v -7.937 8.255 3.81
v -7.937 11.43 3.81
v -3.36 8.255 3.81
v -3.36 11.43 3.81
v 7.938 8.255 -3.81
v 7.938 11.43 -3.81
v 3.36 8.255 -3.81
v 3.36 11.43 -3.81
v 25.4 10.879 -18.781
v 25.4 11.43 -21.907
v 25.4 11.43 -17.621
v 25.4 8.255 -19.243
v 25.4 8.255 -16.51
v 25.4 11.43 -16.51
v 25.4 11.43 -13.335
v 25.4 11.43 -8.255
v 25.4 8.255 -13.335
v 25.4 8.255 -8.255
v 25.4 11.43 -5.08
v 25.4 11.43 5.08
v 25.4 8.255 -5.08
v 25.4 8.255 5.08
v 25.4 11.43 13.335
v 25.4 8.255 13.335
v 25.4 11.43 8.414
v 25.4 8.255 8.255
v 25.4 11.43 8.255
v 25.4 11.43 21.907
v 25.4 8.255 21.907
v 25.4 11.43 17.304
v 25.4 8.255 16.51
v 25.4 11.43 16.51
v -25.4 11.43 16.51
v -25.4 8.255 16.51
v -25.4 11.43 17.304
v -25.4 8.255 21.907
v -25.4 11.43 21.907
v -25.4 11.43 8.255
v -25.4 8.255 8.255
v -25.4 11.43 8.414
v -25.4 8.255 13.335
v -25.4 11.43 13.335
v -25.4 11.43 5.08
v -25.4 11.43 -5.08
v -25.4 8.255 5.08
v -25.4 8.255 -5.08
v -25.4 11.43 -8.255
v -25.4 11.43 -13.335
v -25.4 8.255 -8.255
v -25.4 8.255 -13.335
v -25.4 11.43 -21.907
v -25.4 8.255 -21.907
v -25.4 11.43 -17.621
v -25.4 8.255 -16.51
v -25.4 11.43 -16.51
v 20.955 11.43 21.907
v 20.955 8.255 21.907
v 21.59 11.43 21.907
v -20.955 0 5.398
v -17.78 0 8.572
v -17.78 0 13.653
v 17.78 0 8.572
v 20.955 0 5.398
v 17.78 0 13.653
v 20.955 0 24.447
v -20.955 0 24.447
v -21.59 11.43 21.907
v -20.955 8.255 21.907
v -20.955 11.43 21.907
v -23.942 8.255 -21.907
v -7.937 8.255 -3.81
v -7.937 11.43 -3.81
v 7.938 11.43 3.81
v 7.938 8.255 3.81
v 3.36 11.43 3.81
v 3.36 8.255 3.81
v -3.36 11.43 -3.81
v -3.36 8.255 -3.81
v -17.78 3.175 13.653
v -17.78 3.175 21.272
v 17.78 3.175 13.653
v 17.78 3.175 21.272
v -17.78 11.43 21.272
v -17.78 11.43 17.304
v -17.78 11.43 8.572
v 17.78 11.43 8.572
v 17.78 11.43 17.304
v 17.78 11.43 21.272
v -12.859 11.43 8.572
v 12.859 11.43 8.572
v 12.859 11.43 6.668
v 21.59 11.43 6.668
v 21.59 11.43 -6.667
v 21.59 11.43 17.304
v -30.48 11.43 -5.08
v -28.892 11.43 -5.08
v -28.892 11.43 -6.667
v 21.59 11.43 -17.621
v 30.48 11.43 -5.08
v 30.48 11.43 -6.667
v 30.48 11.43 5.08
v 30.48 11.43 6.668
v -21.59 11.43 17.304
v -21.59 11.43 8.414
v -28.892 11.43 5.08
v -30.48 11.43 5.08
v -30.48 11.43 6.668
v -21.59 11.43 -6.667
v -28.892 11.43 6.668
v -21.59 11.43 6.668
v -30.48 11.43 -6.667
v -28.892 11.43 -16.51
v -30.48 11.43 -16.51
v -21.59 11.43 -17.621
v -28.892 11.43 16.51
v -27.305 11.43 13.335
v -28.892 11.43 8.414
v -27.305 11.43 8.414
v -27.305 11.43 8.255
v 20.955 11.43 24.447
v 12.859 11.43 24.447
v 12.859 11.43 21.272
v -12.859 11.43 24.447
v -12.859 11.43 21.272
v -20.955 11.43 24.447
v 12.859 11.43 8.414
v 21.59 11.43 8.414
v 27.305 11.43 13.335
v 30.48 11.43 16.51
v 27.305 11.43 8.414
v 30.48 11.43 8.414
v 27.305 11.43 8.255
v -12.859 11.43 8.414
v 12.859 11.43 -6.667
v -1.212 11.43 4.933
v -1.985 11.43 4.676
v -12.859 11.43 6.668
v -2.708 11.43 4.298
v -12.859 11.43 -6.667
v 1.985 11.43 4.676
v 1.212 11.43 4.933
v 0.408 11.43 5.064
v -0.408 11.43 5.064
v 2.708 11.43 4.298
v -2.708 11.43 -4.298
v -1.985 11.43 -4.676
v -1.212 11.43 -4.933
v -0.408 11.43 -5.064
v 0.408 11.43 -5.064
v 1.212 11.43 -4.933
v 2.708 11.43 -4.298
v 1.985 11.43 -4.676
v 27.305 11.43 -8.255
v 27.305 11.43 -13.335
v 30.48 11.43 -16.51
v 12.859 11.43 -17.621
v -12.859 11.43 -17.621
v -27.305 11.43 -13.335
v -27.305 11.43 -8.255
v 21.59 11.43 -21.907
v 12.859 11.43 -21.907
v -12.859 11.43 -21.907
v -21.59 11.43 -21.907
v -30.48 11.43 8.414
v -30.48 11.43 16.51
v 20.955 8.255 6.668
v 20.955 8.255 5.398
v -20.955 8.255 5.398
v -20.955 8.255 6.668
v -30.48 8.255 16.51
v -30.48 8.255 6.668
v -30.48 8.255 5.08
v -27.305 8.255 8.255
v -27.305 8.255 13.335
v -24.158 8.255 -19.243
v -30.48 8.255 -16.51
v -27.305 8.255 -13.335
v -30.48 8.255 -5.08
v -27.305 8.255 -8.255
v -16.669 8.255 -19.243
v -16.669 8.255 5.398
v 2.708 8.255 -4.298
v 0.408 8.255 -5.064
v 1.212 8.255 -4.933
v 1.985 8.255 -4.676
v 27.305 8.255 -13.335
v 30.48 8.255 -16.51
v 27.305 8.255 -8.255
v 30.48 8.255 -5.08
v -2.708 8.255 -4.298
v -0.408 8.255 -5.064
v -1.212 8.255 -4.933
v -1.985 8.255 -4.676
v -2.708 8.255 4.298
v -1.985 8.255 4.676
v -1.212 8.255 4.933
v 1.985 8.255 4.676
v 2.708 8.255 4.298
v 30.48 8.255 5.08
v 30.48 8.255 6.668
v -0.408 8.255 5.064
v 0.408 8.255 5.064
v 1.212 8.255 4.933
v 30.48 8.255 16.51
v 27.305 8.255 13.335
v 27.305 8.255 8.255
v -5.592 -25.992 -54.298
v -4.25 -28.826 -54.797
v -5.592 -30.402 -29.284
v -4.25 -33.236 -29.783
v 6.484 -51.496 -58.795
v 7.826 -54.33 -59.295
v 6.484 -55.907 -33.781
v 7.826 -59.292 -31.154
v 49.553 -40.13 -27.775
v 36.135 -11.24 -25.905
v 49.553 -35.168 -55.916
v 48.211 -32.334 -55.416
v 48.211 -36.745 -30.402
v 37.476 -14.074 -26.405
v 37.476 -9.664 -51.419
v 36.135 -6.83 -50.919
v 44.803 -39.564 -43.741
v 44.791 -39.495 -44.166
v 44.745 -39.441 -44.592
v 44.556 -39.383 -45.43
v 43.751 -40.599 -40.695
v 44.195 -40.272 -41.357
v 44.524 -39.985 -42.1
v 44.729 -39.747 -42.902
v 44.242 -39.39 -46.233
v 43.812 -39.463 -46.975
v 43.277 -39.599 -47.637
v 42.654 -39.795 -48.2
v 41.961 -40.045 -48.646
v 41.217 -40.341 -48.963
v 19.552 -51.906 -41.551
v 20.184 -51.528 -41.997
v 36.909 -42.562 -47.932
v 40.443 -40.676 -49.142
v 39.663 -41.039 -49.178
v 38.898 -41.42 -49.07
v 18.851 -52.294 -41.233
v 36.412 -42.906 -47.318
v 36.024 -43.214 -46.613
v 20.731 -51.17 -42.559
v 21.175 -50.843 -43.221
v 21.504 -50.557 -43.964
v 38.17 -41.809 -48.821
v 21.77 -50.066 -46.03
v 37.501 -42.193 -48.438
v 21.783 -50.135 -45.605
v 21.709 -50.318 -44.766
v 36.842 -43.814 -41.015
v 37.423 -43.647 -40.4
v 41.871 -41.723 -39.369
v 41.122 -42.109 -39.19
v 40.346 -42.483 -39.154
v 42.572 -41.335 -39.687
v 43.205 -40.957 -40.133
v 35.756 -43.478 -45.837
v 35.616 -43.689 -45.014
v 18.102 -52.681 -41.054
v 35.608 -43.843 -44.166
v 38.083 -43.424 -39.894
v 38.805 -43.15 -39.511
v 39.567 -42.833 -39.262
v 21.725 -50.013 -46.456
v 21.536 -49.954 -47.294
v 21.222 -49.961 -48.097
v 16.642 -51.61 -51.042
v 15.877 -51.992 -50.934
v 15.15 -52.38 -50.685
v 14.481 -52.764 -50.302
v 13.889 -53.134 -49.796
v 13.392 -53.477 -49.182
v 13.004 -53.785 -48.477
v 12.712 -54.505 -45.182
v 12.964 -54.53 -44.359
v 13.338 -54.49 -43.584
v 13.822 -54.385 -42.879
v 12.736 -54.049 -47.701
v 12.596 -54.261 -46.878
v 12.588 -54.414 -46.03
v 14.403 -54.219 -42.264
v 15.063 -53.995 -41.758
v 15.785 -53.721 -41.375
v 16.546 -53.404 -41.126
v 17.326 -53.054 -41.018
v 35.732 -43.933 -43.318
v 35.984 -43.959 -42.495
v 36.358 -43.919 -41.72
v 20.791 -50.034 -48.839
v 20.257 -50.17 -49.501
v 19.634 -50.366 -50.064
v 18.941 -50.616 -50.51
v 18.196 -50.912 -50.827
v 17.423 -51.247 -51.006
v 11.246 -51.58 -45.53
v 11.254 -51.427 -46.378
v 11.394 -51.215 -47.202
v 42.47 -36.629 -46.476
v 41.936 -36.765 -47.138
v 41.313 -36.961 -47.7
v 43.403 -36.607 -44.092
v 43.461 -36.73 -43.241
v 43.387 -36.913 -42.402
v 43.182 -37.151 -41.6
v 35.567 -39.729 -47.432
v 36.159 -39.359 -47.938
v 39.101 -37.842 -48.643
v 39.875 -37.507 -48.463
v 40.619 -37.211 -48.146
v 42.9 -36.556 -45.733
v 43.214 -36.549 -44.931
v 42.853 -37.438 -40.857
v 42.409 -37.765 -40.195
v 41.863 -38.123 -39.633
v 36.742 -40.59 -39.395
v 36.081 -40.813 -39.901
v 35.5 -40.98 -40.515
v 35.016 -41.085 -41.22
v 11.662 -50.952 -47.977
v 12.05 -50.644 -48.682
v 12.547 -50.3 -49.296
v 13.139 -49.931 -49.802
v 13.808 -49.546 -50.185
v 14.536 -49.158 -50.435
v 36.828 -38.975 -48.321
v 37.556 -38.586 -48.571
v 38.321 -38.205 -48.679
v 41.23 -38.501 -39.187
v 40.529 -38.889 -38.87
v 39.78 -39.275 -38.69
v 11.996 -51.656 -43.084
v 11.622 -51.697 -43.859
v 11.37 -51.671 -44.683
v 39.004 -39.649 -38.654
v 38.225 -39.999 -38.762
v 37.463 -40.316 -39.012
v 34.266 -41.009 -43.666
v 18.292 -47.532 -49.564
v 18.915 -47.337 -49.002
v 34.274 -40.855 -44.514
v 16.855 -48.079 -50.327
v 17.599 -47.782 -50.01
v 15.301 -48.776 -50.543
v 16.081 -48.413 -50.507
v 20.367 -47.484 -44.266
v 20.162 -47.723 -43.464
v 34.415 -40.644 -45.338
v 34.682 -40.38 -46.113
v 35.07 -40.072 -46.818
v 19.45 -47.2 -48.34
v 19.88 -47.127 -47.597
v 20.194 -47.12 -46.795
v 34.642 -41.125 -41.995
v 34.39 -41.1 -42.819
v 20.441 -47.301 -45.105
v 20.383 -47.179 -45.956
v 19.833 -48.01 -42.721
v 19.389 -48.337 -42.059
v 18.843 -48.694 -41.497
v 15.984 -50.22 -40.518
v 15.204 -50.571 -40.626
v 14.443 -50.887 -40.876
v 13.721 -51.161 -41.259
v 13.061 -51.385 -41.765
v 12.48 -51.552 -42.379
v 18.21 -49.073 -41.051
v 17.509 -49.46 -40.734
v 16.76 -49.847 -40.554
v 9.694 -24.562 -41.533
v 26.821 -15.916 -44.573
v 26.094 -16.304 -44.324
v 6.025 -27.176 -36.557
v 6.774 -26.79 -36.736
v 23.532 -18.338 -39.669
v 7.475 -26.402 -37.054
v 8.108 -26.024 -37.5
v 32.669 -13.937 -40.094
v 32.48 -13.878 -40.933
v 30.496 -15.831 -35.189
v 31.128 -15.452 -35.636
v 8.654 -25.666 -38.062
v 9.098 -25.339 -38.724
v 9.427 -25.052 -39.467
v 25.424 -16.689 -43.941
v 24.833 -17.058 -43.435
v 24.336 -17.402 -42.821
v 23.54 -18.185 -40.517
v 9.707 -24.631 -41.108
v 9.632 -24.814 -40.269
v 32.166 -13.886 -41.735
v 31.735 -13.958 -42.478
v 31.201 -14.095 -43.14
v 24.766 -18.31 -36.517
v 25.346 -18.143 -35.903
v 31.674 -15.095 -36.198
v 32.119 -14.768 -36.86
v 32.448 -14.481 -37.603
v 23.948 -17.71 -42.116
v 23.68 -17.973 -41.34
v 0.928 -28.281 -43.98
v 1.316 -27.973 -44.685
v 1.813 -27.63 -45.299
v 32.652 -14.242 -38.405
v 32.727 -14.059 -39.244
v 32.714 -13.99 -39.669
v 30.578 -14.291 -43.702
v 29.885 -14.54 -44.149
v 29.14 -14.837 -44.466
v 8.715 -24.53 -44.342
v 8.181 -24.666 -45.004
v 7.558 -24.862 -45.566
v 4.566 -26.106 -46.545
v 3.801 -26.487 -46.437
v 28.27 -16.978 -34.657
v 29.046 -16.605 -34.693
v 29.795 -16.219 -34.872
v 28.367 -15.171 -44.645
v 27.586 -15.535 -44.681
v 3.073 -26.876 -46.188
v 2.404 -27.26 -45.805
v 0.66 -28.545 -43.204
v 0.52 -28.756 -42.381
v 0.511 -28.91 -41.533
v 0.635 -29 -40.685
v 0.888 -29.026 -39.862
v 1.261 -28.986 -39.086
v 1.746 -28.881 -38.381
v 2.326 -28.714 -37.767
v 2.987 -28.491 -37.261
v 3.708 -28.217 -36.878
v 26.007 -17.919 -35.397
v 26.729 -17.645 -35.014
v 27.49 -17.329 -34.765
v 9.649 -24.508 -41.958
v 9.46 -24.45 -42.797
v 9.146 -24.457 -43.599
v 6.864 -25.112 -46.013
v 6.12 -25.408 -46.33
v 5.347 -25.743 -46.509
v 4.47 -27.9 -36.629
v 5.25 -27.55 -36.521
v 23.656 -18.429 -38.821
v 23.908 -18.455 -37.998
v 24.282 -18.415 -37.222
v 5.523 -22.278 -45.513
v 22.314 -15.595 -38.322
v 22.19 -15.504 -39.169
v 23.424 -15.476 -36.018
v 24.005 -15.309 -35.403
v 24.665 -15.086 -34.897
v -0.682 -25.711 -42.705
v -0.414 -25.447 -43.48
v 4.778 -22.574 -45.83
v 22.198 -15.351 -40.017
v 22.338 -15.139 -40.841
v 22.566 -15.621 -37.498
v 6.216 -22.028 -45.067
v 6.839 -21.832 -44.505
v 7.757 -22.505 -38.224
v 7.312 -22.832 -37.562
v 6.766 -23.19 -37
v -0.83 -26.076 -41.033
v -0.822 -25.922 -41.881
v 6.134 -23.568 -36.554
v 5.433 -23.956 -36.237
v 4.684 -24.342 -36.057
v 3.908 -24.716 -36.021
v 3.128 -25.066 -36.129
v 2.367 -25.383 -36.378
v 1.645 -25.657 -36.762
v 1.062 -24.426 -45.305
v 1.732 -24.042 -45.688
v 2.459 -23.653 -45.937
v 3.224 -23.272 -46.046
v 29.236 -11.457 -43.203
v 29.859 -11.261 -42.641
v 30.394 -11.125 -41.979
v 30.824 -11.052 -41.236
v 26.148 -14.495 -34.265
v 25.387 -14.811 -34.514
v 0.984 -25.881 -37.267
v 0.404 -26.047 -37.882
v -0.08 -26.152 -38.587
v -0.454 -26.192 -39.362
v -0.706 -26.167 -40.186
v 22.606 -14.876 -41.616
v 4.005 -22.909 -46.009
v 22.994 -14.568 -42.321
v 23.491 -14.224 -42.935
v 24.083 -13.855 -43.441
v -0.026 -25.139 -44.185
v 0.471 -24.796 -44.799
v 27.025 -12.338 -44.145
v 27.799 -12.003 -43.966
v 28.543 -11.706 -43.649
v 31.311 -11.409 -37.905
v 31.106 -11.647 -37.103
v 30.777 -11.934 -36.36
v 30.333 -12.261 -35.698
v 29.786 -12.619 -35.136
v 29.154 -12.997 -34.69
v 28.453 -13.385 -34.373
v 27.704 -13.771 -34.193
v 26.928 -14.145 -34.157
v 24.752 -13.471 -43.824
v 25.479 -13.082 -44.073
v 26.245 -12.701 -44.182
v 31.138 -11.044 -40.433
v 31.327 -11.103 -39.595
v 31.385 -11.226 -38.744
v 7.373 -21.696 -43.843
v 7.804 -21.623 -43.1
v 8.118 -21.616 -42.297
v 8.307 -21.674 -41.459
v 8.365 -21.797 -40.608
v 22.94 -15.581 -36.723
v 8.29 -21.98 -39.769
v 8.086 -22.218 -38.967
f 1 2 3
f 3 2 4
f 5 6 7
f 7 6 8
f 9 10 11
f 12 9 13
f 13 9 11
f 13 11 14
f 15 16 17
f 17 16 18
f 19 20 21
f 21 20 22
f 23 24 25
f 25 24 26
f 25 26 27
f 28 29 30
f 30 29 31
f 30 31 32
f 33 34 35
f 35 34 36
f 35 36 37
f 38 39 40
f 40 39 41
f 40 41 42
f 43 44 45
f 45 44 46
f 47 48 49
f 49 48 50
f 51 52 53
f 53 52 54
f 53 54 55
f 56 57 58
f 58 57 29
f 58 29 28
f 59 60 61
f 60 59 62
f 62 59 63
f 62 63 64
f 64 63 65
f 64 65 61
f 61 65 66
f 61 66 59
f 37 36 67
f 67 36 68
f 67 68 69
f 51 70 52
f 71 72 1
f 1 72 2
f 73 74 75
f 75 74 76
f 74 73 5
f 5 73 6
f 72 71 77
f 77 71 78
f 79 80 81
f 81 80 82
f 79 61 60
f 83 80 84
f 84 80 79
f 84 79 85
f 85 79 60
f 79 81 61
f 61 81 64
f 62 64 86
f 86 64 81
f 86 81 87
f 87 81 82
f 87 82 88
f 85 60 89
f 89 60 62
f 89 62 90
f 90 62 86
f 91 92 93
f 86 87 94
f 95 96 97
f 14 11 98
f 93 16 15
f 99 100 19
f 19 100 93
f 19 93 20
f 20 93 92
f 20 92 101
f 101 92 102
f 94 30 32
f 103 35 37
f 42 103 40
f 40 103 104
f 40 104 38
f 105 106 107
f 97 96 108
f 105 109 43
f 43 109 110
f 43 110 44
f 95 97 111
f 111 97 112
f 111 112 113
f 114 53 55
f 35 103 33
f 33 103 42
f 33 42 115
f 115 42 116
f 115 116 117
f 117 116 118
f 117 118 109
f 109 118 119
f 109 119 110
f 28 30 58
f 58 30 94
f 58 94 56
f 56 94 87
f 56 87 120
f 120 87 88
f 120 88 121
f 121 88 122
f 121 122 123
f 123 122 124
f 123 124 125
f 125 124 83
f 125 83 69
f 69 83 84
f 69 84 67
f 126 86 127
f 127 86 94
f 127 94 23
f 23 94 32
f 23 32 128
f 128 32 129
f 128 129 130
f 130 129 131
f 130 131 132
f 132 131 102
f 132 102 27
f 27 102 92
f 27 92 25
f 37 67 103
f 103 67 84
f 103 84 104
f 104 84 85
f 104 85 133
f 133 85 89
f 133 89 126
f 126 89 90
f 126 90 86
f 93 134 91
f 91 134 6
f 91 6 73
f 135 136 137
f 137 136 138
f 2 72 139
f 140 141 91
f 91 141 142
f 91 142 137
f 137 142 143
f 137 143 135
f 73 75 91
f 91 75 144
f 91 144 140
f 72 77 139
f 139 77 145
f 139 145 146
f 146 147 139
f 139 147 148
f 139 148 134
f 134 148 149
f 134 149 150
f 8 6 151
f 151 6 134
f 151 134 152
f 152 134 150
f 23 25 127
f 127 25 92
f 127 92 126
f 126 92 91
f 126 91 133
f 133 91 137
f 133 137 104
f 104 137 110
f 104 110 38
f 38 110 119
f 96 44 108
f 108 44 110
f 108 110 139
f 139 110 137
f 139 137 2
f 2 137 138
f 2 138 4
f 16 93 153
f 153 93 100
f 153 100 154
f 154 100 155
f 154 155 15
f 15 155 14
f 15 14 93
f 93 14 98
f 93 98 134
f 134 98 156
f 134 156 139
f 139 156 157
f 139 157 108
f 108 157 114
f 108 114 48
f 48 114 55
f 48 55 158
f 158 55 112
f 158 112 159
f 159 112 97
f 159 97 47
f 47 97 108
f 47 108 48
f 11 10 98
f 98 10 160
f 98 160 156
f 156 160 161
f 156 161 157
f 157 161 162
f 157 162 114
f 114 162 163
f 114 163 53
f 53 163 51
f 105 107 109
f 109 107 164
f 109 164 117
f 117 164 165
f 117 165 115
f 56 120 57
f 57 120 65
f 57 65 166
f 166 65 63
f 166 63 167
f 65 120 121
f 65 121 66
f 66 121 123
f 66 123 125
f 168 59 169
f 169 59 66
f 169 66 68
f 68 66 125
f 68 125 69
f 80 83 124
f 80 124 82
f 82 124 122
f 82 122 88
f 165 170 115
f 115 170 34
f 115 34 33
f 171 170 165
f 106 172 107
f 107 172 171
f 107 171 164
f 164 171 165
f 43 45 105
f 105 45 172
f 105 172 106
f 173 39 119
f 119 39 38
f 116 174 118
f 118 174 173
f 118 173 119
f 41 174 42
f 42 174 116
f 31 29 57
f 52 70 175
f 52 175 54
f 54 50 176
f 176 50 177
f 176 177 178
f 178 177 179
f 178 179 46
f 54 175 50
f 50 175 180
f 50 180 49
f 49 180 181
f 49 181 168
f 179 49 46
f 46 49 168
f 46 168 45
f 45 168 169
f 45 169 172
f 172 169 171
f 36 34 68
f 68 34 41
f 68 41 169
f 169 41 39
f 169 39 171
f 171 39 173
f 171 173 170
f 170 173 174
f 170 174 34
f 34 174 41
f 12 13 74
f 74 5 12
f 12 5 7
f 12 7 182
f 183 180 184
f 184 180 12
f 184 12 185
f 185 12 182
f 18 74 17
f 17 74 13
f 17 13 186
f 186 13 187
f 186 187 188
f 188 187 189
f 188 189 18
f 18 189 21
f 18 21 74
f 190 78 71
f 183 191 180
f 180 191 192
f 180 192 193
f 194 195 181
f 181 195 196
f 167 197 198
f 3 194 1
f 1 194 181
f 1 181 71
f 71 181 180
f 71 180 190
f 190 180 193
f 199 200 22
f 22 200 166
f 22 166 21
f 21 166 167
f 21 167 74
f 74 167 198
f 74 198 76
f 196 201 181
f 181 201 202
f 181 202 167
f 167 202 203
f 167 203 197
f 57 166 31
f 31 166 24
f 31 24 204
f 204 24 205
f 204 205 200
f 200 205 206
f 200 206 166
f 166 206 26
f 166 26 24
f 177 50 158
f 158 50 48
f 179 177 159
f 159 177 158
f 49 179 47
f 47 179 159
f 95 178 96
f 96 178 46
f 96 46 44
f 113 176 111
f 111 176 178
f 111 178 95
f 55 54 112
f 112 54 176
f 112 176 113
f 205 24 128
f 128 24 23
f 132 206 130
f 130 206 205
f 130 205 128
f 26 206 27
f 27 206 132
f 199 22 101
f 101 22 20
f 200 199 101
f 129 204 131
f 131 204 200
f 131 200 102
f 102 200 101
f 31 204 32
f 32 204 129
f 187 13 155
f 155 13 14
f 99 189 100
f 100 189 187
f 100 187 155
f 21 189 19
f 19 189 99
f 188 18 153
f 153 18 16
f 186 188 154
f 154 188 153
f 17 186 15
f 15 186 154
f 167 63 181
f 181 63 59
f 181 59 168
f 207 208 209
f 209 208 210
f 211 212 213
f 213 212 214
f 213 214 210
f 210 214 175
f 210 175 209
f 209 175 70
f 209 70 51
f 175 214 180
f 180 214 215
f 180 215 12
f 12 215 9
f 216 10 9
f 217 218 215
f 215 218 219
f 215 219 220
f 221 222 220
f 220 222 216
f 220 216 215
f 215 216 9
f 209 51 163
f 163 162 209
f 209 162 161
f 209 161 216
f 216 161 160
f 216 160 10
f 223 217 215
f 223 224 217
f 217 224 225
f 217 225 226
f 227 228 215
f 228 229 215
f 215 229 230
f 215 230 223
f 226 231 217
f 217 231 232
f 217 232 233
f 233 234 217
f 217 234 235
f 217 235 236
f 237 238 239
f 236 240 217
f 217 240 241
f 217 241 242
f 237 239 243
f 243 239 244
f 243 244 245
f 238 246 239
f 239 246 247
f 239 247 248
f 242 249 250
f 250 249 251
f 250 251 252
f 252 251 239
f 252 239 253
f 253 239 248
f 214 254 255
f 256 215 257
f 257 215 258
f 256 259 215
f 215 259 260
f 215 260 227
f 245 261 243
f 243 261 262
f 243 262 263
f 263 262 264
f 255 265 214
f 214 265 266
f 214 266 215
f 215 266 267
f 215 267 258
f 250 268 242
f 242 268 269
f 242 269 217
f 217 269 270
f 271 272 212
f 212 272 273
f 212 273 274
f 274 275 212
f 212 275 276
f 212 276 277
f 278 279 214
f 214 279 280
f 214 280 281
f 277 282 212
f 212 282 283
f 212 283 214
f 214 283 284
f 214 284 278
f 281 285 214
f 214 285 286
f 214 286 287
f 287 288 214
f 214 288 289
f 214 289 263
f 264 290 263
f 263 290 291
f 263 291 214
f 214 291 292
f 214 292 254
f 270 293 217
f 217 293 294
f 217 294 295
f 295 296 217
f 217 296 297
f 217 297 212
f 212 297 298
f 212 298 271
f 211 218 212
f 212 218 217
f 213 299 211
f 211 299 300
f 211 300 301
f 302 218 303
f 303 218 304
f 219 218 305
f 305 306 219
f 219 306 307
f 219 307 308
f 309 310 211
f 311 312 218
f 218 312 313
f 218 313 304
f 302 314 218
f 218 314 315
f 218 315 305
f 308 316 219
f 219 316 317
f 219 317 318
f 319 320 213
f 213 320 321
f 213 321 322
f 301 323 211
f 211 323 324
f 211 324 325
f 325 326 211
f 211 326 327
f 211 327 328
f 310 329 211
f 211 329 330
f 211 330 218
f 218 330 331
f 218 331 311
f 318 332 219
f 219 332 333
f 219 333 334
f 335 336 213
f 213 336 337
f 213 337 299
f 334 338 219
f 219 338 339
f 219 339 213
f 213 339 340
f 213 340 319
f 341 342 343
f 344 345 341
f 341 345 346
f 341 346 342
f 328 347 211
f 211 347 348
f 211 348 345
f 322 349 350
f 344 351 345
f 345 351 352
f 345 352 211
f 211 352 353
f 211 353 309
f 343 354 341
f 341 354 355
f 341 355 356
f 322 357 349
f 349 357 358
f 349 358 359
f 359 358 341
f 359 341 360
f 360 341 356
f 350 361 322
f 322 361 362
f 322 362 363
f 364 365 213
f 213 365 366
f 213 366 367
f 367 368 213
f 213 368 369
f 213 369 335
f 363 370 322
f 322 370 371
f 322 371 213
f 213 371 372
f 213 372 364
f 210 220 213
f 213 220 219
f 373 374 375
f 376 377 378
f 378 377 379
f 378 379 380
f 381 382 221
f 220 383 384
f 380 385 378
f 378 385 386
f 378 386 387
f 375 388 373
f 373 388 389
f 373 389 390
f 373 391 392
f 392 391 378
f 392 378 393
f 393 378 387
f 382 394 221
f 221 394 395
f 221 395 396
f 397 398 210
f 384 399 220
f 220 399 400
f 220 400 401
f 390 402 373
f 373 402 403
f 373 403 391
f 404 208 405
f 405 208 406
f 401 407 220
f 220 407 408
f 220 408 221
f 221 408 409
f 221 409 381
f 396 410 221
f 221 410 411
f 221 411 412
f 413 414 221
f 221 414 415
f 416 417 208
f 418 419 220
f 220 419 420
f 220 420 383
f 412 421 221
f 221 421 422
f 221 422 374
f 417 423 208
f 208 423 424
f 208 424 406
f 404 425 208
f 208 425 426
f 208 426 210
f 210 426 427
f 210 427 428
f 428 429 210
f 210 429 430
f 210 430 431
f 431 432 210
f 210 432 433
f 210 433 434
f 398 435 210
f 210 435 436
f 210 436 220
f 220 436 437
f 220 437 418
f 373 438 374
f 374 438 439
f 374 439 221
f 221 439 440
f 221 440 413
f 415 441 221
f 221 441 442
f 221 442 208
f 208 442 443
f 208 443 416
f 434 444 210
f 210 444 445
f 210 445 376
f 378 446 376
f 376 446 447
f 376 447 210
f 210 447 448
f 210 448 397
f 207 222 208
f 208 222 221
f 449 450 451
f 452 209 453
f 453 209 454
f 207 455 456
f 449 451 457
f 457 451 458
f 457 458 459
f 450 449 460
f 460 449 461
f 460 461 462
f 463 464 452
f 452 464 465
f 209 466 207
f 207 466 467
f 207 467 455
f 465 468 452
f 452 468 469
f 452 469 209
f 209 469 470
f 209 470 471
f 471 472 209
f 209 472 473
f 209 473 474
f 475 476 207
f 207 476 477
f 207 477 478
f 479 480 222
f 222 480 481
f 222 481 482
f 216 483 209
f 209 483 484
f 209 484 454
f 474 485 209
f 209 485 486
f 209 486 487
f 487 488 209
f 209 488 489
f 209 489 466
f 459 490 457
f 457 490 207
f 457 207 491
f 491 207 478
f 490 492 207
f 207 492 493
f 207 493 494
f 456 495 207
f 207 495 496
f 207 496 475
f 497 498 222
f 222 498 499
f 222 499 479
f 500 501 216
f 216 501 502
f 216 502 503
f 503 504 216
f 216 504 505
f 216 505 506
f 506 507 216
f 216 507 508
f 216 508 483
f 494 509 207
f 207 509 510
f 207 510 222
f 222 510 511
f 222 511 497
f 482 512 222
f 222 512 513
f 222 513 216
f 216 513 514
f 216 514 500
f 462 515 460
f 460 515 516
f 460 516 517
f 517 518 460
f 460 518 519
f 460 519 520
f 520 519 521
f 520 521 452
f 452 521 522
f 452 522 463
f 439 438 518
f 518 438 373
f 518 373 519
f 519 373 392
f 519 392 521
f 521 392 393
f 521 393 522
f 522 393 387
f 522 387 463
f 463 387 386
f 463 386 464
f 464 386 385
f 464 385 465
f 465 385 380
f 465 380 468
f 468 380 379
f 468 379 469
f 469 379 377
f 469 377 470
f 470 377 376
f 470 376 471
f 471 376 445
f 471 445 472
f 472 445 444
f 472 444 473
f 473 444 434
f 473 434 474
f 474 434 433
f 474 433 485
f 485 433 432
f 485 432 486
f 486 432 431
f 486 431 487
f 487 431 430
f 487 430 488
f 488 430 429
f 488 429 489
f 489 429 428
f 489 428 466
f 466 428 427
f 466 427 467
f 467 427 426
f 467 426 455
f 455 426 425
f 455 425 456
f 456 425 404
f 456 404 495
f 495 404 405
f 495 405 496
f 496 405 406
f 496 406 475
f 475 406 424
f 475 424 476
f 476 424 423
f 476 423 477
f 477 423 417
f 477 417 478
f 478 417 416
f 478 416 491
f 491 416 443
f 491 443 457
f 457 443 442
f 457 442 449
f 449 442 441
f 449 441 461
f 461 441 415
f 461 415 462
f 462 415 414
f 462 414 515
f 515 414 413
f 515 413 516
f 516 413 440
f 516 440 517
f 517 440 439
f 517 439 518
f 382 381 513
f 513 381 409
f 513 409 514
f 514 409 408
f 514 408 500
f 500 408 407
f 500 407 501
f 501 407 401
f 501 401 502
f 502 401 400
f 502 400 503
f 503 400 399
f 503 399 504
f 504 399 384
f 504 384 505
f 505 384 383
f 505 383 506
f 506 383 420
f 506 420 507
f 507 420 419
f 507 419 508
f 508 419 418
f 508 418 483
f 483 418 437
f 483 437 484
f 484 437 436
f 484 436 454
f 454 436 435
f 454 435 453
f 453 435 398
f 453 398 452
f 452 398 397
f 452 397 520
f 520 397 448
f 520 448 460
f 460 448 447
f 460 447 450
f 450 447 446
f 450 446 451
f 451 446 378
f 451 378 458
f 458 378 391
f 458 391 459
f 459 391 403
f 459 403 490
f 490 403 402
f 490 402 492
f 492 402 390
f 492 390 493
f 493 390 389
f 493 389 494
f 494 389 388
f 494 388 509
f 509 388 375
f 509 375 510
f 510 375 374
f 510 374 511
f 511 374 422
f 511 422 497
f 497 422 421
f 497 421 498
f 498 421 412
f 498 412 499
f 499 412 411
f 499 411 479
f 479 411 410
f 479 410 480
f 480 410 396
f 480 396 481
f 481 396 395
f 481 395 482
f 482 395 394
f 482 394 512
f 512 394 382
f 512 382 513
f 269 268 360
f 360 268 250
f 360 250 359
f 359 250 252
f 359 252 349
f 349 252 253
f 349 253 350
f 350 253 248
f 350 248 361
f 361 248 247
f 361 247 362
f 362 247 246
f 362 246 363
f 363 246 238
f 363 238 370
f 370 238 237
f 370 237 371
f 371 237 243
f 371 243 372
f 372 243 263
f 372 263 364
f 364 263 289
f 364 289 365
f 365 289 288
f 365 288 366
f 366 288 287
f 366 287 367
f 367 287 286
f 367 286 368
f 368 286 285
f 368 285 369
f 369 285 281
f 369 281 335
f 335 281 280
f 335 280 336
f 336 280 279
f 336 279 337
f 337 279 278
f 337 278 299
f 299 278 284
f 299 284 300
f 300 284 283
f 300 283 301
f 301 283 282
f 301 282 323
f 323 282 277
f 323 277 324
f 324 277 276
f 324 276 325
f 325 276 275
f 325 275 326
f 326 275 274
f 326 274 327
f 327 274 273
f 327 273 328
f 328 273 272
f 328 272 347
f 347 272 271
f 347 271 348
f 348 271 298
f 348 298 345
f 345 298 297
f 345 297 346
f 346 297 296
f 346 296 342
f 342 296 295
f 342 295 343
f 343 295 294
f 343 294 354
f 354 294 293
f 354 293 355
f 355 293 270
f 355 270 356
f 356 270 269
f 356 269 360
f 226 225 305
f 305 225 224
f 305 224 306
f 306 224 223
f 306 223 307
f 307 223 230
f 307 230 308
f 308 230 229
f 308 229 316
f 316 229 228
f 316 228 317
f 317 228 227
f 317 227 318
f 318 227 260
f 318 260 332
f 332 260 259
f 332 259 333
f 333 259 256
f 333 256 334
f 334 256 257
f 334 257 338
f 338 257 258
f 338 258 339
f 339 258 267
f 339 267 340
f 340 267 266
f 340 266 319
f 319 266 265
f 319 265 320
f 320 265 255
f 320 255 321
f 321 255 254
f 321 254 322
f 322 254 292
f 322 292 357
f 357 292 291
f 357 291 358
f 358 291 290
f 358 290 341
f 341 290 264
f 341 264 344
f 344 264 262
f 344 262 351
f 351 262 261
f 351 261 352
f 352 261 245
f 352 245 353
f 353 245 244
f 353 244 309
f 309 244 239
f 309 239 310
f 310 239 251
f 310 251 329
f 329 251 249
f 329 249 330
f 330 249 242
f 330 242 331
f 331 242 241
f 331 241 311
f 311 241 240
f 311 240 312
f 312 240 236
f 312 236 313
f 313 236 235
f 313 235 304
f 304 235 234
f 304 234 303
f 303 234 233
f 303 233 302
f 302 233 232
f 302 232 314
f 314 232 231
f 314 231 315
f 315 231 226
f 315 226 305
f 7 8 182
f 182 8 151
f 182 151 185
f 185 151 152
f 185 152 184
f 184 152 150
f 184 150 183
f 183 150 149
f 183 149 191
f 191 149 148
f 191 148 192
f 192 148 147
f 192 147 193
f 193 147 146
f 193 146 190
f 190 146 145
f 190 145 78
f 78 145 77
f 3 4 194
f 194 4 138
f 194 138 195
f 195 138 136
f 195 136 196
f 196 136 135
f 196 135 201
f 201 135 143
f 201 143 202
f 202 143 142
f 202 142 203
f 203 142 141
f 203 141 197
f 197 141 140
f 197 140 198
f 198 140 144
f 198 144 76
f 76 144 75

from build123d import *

# Parameters (mm, degrees)
SKETCH1_W            = 50.8
SKETCH1_H            = 43.815
SKETCH1_W_2          = 15.875
SKETCH1_H_2          = 7.62
SKETCH1_W_3          = 35.56
SKETCH1_H_3          = 5.08
BOSS_EXTRUDE1_DEPTH  = 3.175
SKETCH2_W            = 50.8
SKETCH2_H            = 43.815
SKETCH2_W_2          = 44.45
SKETCH2_H_2          = 37.465
BOSS_EXTRUDE2_DEPTH  = 8.255
SKETCH3_W            = 41.91
SKETCH3_H            = 2.54
BOSS_EXTRUDE3_DEPTH  = 11.43
SKETCH4_W            = 35.56
SKETCH4_H            = 2.54
CUT_EXTRUDE1_DEPTH   = 8.255
BOSS_EXTRUDE4_DEPTH  = 3.175
MIRROR2_COPY_1_DEPTH = 3.175
SKETCH7_W            = 15.875
SKETCH7_H            = 7.62
BOSS_EXTRUDE5_DEPTH  = 8.255
CUT_EXTRUDE2_START   = -11.43
CUT_EXTRUDE2_DEPTH   = 8.255
BOSS_EXTRUDE6_DEPTH  = 3.175
BOSS_EXTRUDE7_DEPTH  = 46.040436
SKETCH12_R           = 5.08
CUT_EXTRUDE3_DEPTH   = 54.813285309
SKETCH13_R           = 5.08
CUT_EXTRUDE4_DEPTH   = 71.721858561


with BuildPart() as part:
    # Sketch1 → Boss-Extrude1 (new body)
    with BuildSketch(Plane(origin=(0, 0, 0), x_dir=(1, 0, 0), z_dir=(0, 1, 0))):
        Rectangle(SKETCH1_W, SKETCH1_H)
        Rectangle(SKETCH1_W_2, SKETCH1_H_2, mode=Mode.SUBTRACT)
        with Locations((0, -11.1125)):
            Rectangle(SKETCH1_W_3, SKETCH1_H_3, mode=Mode.SUBTRACT)
    extrude(amount=BOSS_EXTRUDE1_DEPTH)

    # Sketch2 → Boss-Extrude2 (add)
    with BuildSketch(Plane(origin=(0, 3.175, 0), x_dir=(1, 0, 0), z_dir=(0, 1, 0))):
        Rectangle(SKETCH2_W, SKETCH2_H)
        Rectangle(SKETCH2_W_2, SKETCH2_H_2, mode=Mode.SUBTRACT)
    extrude(amount=BOSS_EXTRUDE2_DEPTH)

    # Sketch3 → Boss-Extrude3 (add)
    with BuildSketch(Plane(origin=(0, 11.43, 0), x_dir=(1, 0, 0), z_dir=(0, 1, 0))):
        with Locations((0, -23.1775)):
            Rectangle(SKETCH3_W, SKETCH3_H)
    extrude(amount=-BOSS_EXTRUDE3_DEPTH)

    # Sketch4 → Cut-Extrude1 (cut)
    with BuildSketch(Plane(origin=(0, 11.43, 0), x_dir=(1, 0, 0), z_dir=(0, 1, 0))):
        with Locations((0, -20.0025)):
            Rectangle(SKETCH4_W, SKETCH4_H)
    extrude(amount=-CUT_EXTRUDE1_DEPTH, mode=Mode.SUBTRACT)

    # Sketch5 → Boss-Extrude4 (add)
    with BuildSketch(Plane(origin=(0, 11.43, 0), x_dir=(1, 0, 0), z_dir=(0, 1, 0))):
        Polygon((-25.4, -16.51), (-30.48, -16.51), (-30.48, -5.08), (-25.4, -5.08), (-25.4, -8.255), (-27.305, -8.255), (-27.305, -13.335), (-25.4, -13.335), align=None)
    boss_extrude4 = extrude(amount=-BOSS_EXTRUDE4_DEPTH)

    # Mirror1: Boss-Extrude4 across plane
    add(boss_extrude4.mirror(Plane.XY))

    # Mirror2: Boss-Extrude4 across plane
    add(boss_extrude4.mirror(Plane(origin=(0, 0, 0), x_dir=(0, 0, 1), z_dir=(1, 0, 0))))

    # Mirror2 copy 1 sketch → Mirror2 copy 1 (add)
    with BuildSketch(Plane(origin=(0, 11.43, 0), x_dir=(-1, 0, 0), z_dir=(0, 1, 0))):
        Polygon((-25.4, -16.51), (-30.48, -16.51), (-30.48, -5.08), (-25.4, -5.08), (-25.4, -8.255), (-27.305, -8.255), (-27.305, -13.335), (-25.4, -13.335), align=None)
    extrude(amount=-MIRROR2_COPY_1_DEPTH)

    # Sketch7 → Boss-Extrude5 (add)
    with BuildSketch(Plane(origin=(0, 3.175, 0), x_dir=(1, 0, 0), z_dir=(0, 1, 0))):
        Polygon((-22.225, -18.7325), (-17.78, -18.7325), (-17.78, -8.5725), (17.78, -8.5725), (17.78, -18.7325), (22.225, -18.7325), (22.225, 18.7325), (-22.225, 18.7325), align=None)
        Rectangle(SKETCH7_W, SKETCH7_H, mode=Mode.SUBTRACT)
    extrude(amount=BOSS_EXTRUDE5_DEPTH)

    # Sketch8 → Cut-Extrude2 (cut)
    with BuildSketch(Plane(origin=(0, 11.43, 0), x_dir=(1, 0, 0), z_dir=(0, 1, 0)).offset(CUT_EXTRUDE2_START)):
        Polygon((-25.4, 21.9075), (-25.4, -21.9075), (-20.955, -21.9075), (-20.955, -5.3975), (20.955, -5.3975), (20.955, -21.9075), (25.4, -21.9075), (25.4, 21.9075), align=None)
    extrude(amount=CUT_EXTRUDE2_DEPTH, mode=Mode.SUBTRACT)

    # Sketch10 → Boss-Extrude6 (add)
    with BuildSketch(Plane(origin=(0, 4.091059817, -23.201553164), x_dir=(-1, 0, 0), z_dir=(0, 0.173648178, -0.984807753))):
        Polygon((-25.4, 7.452155165), (-36.134503848, -15.568062626), (5.592301438, -35.025591481), (25.4, 7.452155165), align=None)
    extrude(amount=-BOSS_EXTRUDE6_DEPTH)

    # Sketch11 → Boss-Extrude7 (add)
    with BuildSketch(Plane(origin=(23.71774367, 10.891742818, 1.920508126), x_dir=(0.06669094, 0.03062604, -0.997303547), z_dir=(0.906307787, 0.416197741, 0.073386891))):
        Polygon((24.765441235, -25.795675729), (29.775724817, -57.147861593), (57.992692094, -52.638606369), (57.491663736, -49.503387783), (32.409915045, -53.511614648), (28.401688179, -28.429865957), (53.48343687, -24.421639092), (52.982408512, -21.286420505), align=None)
    extrude(amount=-BOSS_EXTRUDE7_DEPTH)

    # Sketch12 → Cut-Extrude3 (cut, through all)
    with BuildSketch(Plane(origin=(12.416760179, -26.223291592, -4.623873831), x_dir=(0.906307787, 0.416197741, 0.073386891), z_dir=(-0.422618262, 0.892538935, 0.157378696))):
        with Locations((-9.550583138, 36.25947452)):
            Circle(SKETCH12_R)
        with Locations((15.849416862, 36.25947452)):
            Circle(SKETCH12_R)
    extrude(amount=-CUT_EXTRUDE3_DEPTH, mode=Mode.SUBTRACT)

    # Sketch13 → Cut-Extrude4 (cut, through all)
    with BuildSketch(Plane(origin=(0, 11.43, 0), x_dir=(1, 0, 0), z_dir=(0, 1, 0))):
        Circle(SKETCH13_R)
    extrude(amount=-CUT_EXTRUDE4_DEPTH, mode=Mode.SUBTRACT)


solid = part.part
